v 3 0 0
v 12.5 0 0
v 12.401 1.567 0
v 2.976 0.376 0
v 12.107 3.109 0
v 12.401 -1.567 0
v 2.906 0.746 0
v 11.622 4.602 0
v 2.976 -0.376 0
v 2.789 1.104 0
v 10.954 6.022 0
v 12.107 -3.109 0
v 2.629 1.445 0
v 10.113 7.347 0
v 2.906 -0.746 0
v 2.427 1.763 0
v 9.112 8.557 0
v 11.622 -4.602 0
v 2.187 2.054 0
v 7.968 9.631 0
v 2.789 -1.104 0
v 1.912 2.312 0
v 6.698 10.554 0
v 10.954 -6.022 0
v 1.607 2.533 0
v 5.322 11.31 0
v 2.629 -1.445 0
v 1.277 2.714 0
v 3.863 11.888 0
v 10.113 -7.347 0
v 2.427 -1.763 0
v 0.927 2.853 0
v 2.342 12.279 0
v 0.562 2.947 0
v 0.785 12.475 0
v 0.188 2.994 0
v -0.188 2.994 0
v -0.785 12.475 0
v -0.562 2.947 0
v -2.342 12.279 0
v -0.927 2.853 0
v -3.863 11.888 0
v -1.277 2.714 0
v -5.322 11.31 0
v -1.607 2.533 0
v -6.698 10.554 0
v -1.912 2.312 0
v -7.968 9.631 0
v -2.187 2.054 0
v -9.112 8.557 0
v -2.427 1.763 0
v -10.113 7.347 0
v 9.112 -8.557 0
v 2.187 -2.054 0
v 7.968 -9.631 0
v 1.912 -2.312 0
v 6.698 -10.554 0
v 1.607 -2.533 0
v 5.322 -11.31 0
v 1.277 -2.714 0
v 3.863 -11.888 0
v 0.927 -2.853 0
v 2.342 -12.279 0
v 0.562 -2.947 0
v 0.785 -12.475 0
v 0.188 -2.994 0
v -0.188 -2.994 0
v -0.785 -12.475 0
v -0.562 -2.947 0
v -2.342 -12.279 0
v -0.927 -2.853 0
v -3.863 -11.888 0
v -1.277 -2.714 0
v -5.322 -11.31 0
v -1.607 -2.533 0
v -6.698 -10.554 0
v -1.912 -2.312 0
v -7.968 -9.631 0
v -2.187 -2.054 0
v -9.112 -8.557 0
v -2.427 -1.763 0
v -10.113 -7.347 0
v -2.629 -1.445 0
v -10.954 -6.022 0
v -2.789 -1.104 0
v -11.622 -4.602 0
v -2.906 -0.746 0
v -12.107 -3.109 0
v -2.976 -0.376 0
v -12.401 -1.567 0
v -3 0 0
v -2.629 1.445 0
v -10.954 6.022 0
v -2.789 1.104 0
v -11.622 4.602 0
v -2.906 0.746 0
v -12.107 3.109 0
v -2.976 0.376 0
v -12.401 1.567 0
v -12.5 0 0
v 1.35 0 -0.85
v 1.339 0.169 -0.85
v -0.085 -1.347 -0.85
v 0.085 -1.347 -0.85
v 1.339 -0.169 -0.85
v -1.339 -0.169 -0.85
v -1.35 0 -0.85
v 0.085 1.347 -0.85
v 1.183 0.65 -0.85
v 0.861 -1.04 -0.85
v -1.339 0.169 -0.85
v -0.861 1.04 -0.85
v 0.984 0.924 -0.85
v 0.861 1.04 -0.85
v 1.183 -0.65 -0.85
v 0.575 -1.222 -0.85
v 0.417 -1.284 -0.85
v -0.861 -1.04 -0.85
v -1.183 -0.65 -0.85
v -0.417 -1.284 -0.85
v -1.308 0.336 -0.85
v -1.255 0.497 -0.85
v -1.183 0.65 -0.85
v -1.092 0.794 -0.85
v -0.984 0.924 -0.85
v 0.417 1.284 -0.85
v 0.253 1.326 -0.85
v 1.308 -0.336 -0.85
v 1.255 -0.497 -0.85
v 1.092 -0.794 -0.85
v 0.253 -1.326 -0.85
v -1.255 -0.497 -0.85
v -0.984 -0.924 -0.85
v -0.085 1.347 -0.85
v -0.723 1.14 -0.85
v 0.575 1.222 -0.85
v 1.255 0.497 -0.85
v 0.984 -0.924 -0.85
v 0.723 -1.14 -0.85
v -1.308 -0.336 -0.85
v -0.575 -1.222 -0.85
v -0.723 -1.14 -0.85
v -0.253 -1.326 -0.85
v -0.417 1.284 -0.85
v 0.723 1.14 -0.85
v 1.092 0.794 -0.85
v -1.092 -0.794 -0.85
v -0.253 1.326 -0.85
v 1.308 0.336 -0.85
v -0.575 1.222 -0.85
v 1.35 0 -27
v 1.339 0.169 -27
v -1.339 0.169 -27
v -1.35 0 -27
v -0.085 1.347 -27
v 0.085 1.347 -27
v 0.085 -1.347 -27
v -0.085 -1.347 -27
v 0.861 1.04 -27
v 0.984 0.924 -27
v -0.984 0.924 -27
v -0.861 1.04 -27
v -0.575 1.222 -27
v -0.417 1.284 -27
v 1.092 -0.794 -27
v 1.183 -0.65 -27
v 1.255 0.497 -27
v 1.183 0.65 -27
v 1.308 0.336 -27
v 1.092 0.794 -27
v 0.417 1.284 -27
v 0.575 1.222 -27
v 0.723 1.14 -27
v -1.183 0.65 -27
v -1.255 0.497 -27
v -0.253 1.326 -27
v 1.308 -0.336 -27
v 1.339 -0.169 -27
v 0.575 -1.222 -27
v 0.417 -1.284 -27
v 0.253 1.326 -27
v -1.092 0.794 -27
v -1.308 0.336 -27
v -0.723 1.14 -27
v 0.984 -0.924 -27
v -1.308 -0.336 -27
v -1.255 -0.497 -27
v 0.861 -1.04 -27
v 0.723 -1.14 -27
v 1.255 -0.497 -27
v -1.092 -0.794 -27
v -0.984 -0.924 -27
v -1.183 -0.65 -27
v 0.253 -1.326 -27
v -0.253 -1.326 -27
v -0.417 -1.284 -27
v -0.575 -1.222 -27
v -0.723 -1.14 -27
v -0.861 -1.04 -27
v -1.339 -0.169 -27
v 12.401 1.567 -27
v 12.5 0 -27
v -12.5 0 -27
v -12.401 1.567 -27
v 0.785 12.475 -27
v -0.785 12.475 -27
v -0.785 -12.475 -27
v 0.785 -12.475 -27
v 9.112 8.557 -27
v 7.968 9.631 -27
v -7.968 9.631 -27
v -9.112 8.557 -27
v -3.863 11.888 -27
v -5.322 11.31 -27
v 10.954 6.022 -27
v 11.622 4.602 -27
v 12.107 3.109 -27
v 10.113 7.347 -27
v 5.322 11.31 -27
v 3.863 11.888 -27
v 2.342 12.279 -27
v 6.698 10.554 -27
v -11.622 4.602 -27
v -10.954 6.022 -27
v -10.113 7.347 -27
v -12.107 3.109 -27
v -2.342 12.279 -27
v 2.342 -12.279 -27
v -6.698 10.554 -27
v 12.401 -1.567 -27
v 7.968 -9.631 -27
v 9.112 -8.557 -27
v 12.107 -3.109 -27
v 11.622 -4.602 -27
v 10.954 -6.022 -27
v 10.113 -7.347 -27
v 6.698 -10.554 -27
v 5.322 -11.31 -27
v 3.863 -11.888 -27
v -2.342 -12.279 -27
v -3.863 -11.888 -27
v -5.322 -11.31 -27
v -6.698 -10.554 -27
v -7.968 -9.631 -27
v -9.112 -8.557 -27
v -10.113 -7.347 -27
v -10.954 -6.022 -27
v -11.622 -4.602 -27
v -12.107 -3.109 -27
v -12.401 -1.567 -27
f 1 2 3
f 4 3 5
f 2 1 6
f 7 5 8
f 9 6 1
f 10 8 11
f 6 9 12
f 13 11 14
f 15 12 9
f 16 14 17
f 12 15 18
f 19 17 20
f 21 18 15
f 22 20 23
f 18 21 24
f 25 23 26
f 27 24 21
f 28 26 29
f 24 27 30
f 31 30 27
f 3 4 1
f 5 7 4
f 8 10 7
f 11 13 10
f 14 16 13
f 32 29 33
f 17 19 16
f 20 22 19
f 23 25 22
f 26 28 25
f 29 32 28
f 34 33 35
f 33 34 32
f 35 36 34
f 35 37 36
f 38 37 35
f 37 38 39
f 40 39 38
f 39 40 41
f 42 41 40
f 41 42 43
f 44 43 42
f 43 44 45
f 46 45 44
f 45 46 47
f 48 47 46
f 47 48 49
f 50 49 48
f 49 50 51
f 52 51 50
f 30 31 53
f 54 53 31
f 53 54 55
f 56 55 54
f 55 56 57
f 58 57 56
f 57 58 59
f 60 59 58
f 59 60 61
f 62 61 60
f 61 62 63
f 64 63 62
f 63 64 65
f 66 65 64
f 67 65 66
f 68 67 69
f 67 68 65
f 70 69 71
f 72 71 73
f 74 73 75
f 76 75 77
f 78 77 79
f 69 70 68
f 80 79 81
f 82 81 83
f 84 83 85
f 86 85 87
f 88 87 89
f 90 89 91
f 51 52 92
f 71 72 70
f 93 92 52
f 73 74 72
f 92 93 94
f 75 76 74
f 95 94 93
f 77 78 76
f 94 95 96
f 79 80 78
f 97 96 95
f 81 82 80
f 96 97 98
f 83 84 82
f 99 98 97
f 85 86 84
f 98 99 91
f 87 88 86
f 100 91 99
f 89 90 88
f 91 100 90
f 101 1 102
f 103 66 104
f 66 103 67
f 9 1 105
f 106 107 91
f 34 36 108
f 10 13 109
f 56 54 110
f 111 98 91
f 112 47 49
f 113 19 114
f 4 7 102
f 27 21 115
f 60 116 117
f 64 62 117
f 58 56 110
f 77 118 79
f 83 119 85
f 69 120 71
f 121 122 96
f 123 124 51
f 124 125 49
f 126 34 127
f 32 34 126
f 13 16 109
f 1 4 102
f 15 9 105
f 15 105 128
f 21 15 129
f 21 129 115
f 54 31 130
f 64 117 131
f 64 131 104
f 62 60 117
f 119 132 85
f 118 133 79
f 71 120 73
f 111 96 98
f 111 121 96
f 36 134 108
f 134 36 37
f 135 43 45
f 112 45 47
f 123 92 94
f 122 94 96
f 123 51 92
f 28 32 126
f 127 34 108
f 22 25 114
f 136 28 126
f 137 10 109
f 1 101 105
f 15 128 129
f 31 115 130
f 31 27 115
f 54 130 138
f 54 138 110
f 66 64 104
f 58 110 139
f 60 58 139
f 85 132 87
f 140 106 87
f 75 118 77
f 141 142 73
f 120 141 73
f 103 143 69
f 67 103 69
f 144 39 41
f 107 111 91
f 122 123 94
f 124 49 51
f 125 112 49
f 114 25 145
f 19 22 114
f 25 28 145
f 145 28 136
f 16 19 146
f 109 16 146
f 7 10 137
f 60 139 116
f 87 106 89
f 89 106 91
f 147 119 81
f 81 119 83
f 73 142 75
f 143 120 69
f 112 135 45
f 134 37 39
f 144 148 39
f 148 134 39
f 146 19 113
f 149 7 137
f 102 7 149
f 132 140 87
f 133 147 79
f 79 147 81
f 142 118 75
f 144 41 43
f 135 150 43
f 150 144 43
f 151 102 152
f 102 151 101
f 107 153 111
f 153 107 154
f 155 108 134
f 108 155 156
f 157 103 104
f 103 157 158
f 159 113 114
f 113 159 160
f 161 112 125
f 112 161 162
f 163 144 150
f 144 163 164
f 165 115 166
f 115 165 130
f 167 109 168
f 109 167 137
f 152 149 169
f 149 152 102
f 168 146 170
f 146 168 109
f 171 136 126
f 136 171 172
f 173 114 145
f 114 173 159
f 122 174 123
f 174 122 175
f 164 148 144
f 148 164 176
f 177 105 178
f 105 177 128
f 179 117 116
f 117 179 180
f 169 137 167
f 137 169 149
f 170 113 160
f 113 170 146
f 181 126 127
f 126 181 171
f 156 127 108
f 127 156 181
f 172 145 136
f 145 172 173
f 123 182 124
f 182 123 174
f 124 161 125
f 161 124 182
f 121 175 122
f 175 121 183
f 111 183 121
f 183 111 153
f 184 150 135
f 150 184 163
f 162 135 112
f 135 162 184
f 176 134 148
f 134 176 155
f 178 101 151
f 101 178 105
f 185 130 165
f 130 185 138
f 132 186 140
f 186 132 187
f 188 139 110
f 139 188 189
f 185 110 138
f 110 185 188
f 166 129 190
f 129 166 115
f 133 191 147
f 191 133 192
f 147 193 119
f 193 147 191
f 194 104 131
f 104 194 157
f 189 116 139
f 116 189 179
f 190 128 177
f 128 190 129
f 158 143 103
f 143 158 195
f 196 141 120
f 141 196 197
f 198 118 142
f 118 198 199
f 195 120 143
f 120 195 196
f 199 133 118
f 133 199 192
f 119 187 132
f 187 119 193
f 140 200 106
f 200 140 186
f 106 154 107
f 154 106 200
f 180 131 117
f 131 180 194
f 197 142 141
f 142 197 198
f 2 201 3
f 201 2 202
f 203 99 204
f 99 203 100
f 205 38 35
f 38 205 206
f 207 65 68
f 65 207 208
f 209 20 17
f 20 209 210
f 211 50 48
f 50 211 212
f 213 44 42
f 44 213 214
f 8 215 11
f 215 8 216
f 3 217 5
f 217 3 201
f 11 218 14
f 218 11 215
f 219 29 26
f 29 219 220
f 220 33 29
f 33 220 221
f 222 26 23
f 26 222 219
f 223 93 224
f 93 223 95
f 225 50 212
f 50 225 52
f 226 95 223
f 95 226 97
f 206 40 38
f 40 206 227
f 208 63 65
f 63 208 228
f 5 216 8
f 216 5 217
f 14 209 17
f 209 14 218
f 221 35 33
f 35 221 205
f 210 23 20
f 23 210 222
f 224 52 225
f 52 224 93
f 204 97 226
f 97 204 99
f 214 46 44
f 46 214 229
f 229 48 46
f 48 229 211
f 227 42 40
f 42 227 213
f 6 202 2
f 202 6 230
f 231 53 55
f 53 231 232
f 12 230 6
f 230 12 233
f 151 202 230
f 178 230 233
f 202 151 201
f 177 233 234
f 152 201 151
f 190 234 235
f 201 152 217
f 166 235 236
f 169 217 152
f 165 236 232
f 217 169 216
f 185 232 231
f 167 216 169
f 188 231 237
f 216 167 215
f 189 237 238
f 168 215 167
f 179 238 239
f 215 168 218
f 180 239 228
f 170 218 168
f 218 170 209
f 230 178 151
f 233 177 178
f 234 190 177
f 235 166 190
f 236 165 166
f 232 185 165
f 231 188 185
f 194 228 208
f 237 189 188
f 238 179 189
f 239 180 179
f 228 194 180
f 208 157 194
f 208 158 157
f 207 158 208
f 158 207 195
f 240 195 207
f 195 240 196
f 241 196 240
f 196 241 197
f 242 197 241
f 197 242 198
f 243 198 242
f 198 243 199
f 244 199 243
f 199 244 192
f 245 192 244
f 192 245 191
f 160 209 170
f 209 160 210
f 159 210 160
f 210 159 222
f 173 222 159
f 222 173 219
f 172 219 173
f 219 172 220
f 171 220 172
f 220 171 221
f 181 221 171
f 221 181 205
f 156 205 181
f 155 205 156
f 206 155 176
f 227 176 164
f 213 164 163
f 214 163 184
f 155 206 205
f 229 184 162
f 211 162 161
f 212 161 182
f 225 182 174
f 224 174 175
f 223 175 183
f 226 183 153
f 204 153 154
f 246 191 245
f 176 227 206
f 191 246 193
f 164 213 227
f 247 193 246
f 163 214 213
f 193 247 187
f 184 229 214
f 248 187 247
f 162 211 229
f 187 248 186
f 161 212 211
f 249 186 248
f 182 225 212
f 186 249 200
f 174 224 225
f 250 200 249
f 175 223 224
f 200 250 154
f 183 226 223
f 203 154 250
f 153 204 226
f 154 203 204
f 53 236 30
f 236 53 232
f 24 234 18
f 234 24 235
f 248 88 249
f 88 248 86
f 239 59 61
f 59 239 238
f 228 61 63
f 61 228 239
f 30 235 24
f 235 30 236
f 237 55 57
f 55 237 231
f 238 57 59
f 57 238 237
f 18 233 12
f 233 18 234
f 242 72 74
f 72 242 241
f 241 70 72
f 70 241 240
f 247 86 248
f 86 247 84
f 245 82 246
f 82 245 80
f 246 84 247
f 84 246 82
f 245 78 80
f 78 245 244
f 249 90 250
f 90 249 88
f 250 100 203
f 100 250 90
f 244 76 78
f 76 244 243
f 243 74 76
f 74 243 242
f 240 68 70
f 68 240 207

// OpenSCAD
$fn = 50;


difference() {
	union() {
		translate(v = [0, 0, -27.0000000000]) {
			cylinder(h = 27, r = 12.5000000000);
		}
	}
	union() {
		translate(v = [0, 0, 0]) {
			rotate(a = [0, 0, 0]) {
				difference() {
					union() {
						translate(v = [0, 0, -30.0000000000]) {
							cylinder(h = 30, r = 1.0000000000);
						}
						translate(v = [0, 0, -0.8500000000]) {
							cylinder(h = 0.8500000000, r1 = 1.3500000000, r2 = 3.0000000000);
						}
						translate(v = [0, 0, -30.0000000000]) {
							cylinder(h = 30, r = 1.3500000000);
						}
						translate(v = [0, 0, -30.0000000000]) {
							cylinder(h = 30, r = 1.0000000000);
						}
					}
					union();
				}
			}
		}
	}
}
